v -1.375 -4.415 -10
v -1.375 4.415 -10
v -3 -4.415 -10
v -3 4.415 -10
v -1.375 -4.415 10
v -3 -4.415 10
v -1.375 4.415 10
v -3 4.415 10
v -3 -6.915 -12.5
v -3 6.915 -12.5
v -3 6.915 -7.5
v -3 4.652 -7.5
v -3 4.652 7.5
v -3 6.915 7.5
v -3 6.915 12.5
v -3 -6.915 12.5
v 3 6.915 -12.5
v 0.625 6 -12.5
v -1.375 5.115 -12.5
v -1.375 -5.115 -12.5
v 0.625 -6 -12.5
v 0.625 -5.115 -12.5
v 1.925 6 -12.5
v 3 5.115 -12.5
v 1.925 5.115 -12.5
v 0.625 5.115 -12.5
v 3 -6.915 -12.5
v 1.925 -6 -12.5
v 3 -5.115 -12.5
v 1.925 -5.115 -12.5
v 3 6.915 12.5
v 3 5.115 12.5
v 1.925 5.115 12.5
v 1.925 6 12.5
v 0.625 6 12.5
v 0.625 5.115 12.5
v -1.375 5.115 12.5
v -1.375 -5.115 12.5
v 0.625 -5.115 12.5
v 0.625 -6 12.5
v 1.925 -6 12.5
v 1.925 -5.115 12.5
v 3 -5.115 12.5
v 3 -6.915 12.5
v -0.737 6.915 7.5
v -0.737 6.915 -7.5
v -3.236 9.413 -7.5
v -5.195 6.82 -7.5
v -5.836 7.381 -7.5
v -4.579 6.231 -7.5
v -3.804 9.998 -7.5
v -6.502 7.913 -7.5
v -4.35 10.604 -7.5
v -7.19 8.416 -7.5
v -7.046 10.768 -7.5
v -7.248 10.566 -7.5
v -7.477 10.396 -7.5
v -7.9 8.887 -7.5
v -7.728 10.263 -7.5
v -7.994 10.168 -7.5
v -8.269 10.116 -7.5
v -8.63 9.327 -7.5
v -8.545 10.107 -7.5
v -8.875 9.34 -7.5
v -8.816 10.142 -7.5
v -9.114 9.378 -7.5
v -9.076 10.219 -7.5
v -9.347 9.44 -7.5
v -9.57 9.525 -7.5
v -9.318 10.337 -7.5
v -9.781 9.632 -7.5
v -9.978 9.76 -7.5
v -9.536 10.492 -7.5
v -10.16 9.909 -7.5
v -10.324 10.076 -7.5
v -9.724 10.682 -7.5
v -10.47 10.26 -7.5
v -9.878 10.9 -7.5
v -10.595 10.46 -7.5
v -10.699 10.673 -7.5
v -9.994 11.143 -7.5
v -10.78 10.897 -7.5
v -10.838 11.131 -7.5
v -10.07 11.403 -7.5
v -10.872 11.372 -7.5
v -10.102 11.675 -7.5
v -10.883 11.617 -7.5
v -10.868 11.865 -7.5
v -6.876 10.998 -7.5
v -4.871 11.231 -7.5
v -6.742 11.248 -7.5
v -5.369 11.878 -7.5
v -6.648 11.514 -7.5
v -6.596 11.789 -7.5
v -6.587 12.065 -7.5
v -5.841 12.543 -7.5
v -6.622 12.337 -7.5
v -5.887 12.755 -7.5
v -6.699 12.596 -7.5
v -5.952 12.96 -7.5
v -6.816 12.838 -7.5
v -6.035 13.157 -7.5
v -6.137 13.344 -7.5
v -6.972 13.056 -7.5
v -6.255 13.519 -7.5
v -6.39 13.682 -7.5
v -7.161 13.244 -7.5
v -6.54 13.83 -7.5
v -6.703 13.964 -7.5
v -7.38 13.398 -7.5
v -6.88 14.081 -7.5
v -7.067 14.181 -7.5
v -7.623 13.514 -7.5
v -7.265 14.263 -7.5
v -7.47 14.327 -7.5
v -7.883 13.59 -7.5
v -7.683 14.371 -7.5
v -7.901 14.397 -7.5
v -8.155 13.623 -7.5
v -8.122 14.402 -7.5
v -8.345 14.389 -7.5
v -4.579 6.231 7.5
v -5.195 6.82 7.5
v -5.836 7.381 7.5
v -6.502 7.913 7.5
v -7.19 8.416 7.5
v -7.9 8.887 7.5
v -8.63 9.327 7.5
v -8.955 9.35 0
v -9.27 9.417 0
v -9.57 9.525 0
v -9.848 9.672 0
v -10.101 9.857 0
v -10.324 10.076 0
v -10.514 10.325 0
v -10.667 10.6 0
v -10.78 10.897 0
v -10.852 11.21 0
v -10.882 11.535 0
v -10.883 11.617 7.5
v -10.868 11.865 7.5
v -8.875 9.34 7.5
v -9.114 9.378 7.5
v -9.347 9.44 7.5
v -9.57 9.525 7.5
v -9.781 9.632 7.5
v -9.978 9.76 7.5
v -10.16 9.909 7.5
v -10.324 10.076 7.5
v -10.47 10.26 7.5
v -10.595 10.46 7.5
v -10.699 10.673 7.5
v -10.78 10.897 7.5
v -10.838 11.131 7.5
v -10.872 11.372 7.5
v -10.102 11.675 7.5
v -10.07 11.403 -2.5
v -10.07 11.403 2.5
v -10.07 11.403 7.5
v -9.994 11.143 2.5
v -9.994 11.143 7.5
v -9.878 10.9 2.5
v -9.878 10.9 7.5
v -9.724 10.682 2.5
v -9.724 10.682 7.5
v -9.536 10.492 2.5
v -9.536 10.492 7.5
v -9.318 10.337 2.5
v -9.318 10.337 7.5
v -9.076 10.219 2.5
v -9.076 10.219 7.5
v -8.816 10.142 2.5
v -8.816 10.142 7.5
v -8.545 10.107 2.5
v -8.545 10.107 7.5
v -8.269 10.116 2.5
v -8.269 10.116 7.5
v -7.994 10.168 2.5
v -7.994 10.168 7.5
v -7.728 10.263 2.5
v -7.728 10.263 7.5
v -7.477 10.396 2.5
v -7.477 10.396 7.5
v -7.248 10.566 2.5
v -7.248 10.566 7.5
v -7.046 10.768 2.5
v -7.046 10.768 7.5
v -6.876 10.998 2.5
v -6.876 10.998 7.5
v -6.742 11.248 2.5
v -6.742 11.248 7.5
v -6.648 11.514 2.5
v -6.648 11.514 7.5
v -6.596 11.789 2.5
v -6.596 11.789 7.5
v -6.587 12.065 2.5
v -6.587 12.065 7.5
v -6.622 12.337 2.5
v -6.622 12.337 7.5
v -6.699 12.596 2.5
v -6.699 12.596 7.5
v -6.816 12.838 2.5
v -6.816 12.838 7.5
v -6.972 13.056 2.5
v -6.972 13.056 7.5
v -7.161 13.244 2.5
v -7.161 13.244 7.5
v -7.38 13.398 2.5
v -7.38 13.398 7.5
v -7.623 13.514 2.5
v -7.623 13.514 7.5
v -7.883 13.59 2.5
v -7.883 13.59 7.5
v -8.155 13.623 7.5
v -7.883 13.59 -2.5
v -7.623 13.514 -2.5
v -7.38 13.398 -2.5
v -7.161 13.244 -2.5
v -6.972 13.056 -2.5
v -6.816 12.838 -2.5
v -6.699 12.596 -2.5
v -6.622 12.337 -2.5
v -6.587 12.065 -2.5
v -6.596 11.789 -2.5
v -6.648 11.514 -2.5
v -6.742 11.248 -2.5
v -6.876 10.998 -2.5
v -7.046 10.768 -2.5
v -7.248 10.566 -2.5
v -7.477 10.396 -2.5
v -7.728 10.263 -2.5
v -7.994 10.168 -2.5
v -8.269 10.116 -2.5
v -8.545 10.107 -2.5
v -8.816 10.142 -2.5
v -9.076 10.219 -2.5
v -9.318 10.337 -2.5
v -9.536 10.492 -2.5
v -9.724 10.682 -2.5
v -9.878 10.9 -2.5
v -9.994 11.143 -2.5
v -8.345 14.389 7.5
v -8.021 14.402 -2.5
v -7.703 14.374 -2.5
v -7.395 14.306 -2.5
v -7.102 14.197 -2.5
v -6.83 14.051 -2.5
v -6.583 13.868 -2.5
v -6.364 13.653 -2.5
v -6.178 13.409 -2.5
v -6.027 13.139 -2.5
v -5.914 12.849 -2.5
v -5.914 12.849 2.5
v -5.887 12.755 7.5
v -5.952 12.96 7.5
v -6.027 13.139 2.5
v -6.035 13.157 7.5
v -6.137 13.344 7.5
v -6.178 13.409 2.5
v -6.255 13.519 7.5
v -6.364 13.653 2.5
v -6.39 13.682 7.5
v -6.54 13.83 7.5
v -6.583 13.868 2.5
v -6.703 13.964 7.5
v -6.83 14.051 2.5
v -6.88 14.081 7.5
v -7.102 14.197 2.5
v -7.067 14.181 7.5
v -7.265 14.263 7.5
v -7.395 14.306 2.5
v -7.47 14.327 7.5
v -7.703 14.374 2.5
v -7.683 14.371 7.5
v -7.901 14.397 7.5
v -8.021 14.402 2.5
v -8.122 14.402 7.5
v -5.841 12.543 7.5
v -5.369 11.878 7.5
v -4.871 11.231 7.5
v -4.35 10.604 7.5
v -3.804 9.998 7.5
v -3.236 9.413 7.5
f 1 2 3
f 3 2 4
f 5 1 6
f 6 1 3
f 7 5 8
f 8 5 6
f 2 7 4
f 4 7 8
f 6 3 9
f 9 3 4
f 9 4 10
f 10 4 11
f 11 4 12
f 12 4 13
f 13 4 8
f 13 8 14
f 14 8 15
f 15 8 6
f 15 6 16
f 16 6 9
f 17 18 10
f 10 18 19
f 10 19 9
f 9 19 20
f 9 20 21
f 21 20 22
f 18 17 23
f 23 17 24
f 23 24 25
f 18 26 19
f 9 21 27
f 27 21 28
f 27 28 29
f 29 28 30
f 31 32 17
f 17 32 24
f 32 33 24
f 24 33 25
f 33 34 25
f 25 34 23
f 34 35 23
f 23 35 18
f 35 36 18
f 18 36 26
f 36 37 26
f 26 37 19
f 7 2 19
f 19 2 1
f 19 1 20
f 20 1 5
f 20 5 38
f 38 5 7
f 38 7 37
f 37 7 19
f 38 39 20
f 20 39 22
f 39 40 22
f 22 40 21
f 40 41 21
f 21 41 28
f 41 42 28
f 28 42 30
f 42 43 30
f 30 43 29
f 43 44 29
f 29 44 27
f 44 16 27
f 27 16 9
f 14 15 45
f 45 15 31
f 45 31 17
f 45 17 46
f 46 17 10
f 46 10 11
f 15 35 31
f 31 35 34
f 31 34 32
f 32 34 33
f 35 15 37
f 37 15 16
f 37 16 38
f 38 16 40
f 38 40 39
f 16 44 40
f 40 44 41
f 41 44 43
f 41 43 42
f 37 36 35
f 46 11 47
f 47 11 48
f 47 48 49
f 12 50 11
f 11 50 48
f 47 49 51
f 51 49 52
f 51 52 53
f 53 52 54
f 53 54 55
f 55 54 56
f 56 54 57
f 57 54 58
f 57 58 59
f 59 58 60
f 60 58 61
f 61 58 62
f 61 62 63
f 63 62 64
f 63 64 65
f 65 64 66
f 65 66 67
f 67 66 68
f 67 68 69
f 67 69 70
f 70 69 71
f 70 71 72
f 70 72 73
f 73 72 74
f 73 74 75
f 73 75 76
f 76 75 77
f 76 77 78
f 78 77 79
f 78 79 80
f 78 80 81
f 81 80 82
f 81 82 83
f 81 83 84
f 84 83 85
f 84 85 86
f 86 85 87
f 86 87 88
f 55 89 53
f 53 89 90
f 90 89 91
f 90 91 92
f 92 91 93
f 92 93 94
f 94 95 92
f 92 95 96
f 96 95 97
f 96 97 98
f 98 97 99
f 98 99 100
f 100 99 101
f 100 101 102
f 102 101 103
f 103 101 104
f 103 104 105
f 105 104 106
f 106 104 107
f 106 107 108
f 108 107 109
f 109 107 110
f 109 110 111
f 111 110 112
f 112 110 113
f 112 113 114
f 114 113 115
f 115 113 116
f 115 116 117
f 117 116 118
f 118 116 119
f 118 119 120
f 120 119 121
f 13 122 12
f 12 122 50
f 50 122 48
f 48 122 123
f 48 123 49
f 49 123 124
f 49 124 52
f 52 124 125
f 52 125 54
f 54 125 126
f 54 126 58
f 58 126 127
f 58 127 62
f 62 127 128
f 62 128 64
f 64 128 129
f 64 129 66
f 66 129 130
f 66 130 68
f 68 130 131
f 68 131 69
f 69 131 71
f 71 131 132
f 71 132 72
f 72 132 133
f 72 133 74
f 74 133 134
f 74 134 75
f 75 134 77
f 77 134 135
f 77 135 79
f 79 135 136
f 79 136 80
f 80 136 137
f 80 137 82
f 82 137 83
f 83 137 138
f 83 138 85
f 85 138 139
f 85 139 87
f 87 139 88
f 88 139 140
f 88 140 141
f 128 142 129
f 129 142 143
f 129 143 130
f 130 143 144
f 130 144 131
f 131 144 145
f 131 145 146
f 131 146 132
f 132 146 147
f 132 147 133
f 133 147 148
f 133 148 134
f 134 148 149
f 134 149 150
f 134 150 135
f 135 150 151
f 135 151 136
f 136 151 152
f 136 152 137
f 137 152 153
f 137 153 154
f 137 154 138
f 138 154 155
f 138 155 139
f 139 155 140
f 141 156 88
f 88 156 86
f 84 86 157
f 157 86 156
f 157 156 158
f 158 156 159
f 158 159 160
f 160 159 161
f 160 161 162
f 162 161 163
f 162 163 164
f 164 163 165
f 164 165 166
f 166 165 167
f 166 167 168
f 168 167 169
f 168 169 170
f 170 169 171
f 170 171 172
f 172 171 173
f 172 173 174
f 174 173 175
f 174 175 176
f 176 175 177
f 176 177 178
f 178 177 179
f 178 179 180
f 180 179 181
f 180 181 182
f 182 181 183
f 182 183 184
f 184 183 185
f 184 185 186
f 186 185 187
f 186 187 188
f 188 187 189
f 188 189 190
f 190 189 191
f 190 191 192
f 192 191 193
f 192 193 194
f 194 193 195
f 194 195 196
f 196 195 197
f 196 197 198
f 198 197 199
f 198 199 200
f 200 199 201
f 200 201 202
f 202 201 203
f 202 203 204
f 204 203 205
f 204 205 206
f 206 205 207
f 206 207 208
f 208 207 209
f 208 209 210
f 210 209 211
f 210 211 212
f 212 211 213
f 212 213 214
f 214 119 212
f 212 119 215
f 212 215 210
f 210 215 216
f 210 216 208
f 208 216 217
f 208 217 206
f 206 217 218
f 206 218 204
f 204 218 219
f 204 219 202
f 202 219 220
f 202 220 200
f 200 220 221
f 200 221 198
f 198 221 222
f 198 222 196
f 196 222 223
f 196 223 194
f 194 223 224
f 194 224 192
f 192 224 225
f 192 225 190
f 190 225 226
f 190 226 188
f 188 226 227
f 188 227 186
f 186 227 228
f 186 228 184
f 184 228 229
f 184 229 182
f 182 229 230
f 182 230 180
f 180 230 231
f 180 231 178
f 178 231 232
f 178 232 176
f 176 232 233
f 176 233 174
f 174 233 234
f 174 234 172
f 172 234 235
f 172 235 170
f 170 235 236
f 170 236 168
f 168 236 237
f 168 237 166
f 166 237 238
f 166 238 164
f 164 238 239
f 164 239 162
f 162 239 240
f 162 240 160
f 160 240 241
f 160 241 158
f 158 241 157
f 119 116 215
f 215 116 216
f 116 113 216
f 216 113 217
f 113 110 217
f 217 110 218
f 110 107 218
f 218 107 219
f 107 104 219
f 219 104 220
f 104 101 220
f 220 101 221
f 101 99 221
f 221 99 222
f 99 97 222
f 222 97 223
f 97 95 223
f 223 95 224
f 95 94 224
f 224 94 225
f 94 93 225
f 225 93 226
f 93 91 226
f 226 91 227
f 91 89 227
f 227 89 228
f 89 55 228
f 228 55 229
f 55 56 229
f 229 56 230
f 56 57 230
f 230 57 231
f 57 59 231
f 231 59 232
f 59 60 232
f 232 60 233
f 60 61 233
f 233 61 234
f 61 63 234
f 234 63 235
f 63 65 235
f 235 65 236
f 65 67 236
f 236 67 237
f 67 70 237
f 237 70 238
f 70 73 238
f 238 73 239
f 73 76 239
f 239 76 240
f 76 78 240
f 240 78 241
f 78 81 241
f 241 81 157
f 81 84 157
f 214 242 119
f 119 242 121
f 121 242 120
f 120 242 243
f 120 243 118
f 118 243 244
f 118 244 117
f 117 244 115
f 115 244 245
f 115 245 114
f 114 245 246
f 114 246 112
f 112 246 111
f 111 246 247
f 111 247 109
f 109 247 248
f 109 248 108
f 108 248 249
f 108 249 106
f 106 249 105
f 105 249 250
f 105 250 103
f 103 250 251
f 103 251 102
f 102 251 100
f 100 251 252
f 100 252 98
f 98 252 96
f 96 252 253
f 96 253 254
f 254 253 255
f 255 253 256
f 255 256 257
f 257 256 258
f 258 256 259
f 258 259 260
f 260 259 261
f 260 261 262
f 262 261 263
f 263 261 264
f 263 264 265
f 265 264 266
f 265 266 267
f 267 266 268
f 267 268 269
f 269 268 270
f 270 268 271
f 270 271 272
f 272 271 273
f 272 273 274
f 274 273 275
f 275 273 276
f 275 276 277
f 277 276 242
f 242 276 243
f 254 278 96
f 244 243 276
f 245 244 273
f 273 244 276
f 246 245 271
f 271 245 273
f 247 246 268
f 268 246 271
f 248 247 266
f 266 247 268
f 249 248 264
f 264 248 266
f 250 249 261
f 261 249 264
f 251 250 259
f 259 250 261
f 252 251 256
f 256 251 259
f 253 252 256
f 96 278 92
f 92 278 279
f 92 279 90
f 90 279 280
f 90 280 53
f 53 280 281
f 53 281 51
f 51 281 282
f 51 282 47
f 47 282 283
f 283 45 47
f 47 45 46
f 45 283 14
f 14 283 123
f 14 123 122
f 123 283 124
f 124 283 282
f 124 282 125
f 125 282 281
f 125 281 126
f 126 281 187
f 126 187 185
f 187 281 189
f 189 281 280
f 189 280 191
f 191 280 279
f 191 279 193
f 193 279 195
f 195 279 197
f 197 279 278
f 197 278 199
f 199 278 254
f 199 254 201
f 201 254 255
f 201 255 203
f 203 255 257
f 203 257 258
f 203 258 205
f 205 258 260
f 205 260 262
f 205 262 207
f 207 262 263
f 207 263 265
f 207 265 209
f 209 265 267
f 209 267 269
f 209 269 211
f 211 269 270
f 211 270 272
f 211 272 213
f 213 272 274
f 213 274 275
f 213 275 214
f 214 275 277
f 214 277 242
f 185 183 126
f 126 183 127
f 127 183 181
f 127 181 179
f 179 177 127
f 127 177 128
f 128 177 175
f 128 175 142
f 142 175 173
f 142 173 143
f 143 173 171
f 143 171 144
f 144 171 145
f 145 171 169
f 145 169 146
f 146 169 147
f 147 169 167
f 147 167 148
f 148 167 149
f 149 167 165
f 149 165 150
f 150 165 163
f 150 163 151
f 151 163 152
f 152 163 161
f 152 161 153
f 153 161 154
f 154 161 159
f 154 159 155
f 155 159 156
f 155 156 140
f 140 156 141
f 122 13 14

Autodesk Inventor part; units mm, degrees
ref_plane "YZ Plane" through (0, 0, 0) normal (1, 0, 0) x (0, 1, 0)
ref_plane "XZ Plane" through (0, 0, 0) normal (0, 1, 0) x (-1, 0, 0)
ref_plane "XY Plane" through (0, 0, 0) normal (0, 0, 1) x (1, 0, 0)
sketch "Skizze1" plane through (0, 0, 0) normal (0, 0, 1) x (1, 0, 0)
  line L0 (-0.7373, 6.915) -> (3, 6.915)
  line L1 (3, 6.915) -> (3, -6.915)
  line L2 (3, -6.915) -> (-3, -6.915)
  line L3 (-3, -6.915) -> (-3, 4.6523)
  line L4 (-3, 6.915) -> (3, -6.915) construction
  line L5 (3, 6.915) -> (-3, -6.915) construction
  line L6 (-3, 0) -> (3, 0)
  line L7 (1.925, 6) -> (1.925, 5.115)
  line L8 (0.625, 6) -> (0.625, 5.115)
  line L9 (-1.375, 5.115) -> (-1.375, 0)
  line L10 (0.625, 6) -> (1.925, 6)
  line L11 (-1.375, 5.115) -> (0.625, 5.115)
  line L12 (1.925, 5.115) -> (3, 5.115)
  line L13 (-3, 0) -> (3, 0)
  line L14 (0.625, -6) -> (0.625, -5.115)
  line L15 (-1.375, -5.115) -> (-1.375, 0)
  line L16 (0.625, -6) -> (1.925, -6)
  line L17 (-1.375, -5.115) -> (0.625, -5.115)
  line L18 (1.925, -5.115) -> (3, -5.115)
  line L19 (1.925, -5.115) -> (1.925, -6)
  line L20 (-3, 6.915) -> (2.008, 6.915) construction
  line L21 (-3, 6.915) -> (4, 6.915) construction
  line L22 (-3, 6.915) -> (-7.9497, 11.8647)
  line L23 (-3, 6.915) -> (4, 6.915) construction
  line L24 (-0.7373, 6.915) -> (-3.3906, 9.5683)
  line L25 (-4.5789, 6.2311) -> (-3, 4.6523)
  ellipse E0 centre (-8.3445, 11.8647) end of major axis (-7.059, 13.1503) minor radius 1.6987
  ellipse E1 centre (-8.3445, 11.8647) end of major axis (-6.4572, 13.7521) minor radius 2.3999
  arc A0 (-4.5682, 6.2204) -> (-8.6297, 9.3267) centre (-18.2185, -7.4192) ccw
  arc A1 (-5.8407, 12.5429) -> (-3.2355, 9.4133) centre (11.6468, 24.4506) ccw
  line L26 (-8.1548, 13.6227) -> (-10.1025, 11.6751)
  line L27 (-8.1548, 13.6227) -> (-8.3445, 14.3886)
  line L28 (-8.3445, 14.3886) -> (-10.8684, 11.8647)
  line L29 (-10.1025, 11.6751) -> (-10.8684, 11.8647)
  line L30 (-3, 4.6523) -> (-3, 6.915)
  line L31 (-3, 6.915) -> (-0.7373, 6.915)
  point P0 (0, 0)
  point P1 (1.925, 5.5575)
  point P2 (-8.5245, 12.4395)
  point P3 (3, -5.115)
  point P4 (1.275, -6)
  point P5 (1.275, 6)
  point P6 (2.4625, 5.115)
  point P7 (-5.4749, 9.3899)
  dimension "d34" = 1.6987
  dimension "d35" = 1.818
  dimension "d36" = 2.6691
  dimension "d37" = 2.4
  dimension "d0" = 6
  dimension "d19" = 1.3
  dimension "d20" = 2
  dimension "d26" = 1.8
  dimension "d27" = 1.8
  dimension "d30" = 135
  dimension "d40" = 12
  dimension "d41" = 0.885
  dimension "d44" = 7.2125
  dimension "d45" = 4.9497
  dimension "d46" = 4.7376
  dimension "d47" = 2.2627
extrude "Extrusion1" add sketch "Skizze1" along normal mid plane 15 contours L31 L22 E1 A1 L24 | L30 L25 A0 E1 L22 | E1 L29 E0 L22 | L22 E0 L27 E1
extrude "Extrusion2" add sketch "Skizze1" along normal mid plane 25 contours L0 L1 L12 L7 L10 L8 L11 L9 L6 L3 L30 L31 | L6 L15 L17 L14 L16 L19 L18 L1 L2 L3
sketch "Skizze2" plane through (-3, -6.915, -12.5) normal (-1, 0, 0) x (0, 0, 1)
  line L0 (2.5, 11.33) -> (22.5, 11.33)
  line L1 (22.5, 11.33) -> (22.5, 2.5)
  line L2 (22.5, 2.5) -> (2.5, 2.5)
  line L3 (2.5, 2.5) -> (2.5, 11.33)
  line L4 (2.5, 11.33) -> (22.5, 2.5) construction
  line L5 (22.5, 11.33) -> (2.5, 2.5) construction
  line L6 (0, 0) -> (0, 13.83) projected
  line L7 (0, 0) -> (25, 0) projected
  point P0 (12.5, 6.915)
  point P1 (12.5, 2.5)
  dimension "d50" = 2.5
  dimension "d51" = 2.5
extrude "Extrusion3" cut sketch "Skizze2" against normal up to surface (1.625 mm away)
properties part number "led-mount_3D-Druck"
